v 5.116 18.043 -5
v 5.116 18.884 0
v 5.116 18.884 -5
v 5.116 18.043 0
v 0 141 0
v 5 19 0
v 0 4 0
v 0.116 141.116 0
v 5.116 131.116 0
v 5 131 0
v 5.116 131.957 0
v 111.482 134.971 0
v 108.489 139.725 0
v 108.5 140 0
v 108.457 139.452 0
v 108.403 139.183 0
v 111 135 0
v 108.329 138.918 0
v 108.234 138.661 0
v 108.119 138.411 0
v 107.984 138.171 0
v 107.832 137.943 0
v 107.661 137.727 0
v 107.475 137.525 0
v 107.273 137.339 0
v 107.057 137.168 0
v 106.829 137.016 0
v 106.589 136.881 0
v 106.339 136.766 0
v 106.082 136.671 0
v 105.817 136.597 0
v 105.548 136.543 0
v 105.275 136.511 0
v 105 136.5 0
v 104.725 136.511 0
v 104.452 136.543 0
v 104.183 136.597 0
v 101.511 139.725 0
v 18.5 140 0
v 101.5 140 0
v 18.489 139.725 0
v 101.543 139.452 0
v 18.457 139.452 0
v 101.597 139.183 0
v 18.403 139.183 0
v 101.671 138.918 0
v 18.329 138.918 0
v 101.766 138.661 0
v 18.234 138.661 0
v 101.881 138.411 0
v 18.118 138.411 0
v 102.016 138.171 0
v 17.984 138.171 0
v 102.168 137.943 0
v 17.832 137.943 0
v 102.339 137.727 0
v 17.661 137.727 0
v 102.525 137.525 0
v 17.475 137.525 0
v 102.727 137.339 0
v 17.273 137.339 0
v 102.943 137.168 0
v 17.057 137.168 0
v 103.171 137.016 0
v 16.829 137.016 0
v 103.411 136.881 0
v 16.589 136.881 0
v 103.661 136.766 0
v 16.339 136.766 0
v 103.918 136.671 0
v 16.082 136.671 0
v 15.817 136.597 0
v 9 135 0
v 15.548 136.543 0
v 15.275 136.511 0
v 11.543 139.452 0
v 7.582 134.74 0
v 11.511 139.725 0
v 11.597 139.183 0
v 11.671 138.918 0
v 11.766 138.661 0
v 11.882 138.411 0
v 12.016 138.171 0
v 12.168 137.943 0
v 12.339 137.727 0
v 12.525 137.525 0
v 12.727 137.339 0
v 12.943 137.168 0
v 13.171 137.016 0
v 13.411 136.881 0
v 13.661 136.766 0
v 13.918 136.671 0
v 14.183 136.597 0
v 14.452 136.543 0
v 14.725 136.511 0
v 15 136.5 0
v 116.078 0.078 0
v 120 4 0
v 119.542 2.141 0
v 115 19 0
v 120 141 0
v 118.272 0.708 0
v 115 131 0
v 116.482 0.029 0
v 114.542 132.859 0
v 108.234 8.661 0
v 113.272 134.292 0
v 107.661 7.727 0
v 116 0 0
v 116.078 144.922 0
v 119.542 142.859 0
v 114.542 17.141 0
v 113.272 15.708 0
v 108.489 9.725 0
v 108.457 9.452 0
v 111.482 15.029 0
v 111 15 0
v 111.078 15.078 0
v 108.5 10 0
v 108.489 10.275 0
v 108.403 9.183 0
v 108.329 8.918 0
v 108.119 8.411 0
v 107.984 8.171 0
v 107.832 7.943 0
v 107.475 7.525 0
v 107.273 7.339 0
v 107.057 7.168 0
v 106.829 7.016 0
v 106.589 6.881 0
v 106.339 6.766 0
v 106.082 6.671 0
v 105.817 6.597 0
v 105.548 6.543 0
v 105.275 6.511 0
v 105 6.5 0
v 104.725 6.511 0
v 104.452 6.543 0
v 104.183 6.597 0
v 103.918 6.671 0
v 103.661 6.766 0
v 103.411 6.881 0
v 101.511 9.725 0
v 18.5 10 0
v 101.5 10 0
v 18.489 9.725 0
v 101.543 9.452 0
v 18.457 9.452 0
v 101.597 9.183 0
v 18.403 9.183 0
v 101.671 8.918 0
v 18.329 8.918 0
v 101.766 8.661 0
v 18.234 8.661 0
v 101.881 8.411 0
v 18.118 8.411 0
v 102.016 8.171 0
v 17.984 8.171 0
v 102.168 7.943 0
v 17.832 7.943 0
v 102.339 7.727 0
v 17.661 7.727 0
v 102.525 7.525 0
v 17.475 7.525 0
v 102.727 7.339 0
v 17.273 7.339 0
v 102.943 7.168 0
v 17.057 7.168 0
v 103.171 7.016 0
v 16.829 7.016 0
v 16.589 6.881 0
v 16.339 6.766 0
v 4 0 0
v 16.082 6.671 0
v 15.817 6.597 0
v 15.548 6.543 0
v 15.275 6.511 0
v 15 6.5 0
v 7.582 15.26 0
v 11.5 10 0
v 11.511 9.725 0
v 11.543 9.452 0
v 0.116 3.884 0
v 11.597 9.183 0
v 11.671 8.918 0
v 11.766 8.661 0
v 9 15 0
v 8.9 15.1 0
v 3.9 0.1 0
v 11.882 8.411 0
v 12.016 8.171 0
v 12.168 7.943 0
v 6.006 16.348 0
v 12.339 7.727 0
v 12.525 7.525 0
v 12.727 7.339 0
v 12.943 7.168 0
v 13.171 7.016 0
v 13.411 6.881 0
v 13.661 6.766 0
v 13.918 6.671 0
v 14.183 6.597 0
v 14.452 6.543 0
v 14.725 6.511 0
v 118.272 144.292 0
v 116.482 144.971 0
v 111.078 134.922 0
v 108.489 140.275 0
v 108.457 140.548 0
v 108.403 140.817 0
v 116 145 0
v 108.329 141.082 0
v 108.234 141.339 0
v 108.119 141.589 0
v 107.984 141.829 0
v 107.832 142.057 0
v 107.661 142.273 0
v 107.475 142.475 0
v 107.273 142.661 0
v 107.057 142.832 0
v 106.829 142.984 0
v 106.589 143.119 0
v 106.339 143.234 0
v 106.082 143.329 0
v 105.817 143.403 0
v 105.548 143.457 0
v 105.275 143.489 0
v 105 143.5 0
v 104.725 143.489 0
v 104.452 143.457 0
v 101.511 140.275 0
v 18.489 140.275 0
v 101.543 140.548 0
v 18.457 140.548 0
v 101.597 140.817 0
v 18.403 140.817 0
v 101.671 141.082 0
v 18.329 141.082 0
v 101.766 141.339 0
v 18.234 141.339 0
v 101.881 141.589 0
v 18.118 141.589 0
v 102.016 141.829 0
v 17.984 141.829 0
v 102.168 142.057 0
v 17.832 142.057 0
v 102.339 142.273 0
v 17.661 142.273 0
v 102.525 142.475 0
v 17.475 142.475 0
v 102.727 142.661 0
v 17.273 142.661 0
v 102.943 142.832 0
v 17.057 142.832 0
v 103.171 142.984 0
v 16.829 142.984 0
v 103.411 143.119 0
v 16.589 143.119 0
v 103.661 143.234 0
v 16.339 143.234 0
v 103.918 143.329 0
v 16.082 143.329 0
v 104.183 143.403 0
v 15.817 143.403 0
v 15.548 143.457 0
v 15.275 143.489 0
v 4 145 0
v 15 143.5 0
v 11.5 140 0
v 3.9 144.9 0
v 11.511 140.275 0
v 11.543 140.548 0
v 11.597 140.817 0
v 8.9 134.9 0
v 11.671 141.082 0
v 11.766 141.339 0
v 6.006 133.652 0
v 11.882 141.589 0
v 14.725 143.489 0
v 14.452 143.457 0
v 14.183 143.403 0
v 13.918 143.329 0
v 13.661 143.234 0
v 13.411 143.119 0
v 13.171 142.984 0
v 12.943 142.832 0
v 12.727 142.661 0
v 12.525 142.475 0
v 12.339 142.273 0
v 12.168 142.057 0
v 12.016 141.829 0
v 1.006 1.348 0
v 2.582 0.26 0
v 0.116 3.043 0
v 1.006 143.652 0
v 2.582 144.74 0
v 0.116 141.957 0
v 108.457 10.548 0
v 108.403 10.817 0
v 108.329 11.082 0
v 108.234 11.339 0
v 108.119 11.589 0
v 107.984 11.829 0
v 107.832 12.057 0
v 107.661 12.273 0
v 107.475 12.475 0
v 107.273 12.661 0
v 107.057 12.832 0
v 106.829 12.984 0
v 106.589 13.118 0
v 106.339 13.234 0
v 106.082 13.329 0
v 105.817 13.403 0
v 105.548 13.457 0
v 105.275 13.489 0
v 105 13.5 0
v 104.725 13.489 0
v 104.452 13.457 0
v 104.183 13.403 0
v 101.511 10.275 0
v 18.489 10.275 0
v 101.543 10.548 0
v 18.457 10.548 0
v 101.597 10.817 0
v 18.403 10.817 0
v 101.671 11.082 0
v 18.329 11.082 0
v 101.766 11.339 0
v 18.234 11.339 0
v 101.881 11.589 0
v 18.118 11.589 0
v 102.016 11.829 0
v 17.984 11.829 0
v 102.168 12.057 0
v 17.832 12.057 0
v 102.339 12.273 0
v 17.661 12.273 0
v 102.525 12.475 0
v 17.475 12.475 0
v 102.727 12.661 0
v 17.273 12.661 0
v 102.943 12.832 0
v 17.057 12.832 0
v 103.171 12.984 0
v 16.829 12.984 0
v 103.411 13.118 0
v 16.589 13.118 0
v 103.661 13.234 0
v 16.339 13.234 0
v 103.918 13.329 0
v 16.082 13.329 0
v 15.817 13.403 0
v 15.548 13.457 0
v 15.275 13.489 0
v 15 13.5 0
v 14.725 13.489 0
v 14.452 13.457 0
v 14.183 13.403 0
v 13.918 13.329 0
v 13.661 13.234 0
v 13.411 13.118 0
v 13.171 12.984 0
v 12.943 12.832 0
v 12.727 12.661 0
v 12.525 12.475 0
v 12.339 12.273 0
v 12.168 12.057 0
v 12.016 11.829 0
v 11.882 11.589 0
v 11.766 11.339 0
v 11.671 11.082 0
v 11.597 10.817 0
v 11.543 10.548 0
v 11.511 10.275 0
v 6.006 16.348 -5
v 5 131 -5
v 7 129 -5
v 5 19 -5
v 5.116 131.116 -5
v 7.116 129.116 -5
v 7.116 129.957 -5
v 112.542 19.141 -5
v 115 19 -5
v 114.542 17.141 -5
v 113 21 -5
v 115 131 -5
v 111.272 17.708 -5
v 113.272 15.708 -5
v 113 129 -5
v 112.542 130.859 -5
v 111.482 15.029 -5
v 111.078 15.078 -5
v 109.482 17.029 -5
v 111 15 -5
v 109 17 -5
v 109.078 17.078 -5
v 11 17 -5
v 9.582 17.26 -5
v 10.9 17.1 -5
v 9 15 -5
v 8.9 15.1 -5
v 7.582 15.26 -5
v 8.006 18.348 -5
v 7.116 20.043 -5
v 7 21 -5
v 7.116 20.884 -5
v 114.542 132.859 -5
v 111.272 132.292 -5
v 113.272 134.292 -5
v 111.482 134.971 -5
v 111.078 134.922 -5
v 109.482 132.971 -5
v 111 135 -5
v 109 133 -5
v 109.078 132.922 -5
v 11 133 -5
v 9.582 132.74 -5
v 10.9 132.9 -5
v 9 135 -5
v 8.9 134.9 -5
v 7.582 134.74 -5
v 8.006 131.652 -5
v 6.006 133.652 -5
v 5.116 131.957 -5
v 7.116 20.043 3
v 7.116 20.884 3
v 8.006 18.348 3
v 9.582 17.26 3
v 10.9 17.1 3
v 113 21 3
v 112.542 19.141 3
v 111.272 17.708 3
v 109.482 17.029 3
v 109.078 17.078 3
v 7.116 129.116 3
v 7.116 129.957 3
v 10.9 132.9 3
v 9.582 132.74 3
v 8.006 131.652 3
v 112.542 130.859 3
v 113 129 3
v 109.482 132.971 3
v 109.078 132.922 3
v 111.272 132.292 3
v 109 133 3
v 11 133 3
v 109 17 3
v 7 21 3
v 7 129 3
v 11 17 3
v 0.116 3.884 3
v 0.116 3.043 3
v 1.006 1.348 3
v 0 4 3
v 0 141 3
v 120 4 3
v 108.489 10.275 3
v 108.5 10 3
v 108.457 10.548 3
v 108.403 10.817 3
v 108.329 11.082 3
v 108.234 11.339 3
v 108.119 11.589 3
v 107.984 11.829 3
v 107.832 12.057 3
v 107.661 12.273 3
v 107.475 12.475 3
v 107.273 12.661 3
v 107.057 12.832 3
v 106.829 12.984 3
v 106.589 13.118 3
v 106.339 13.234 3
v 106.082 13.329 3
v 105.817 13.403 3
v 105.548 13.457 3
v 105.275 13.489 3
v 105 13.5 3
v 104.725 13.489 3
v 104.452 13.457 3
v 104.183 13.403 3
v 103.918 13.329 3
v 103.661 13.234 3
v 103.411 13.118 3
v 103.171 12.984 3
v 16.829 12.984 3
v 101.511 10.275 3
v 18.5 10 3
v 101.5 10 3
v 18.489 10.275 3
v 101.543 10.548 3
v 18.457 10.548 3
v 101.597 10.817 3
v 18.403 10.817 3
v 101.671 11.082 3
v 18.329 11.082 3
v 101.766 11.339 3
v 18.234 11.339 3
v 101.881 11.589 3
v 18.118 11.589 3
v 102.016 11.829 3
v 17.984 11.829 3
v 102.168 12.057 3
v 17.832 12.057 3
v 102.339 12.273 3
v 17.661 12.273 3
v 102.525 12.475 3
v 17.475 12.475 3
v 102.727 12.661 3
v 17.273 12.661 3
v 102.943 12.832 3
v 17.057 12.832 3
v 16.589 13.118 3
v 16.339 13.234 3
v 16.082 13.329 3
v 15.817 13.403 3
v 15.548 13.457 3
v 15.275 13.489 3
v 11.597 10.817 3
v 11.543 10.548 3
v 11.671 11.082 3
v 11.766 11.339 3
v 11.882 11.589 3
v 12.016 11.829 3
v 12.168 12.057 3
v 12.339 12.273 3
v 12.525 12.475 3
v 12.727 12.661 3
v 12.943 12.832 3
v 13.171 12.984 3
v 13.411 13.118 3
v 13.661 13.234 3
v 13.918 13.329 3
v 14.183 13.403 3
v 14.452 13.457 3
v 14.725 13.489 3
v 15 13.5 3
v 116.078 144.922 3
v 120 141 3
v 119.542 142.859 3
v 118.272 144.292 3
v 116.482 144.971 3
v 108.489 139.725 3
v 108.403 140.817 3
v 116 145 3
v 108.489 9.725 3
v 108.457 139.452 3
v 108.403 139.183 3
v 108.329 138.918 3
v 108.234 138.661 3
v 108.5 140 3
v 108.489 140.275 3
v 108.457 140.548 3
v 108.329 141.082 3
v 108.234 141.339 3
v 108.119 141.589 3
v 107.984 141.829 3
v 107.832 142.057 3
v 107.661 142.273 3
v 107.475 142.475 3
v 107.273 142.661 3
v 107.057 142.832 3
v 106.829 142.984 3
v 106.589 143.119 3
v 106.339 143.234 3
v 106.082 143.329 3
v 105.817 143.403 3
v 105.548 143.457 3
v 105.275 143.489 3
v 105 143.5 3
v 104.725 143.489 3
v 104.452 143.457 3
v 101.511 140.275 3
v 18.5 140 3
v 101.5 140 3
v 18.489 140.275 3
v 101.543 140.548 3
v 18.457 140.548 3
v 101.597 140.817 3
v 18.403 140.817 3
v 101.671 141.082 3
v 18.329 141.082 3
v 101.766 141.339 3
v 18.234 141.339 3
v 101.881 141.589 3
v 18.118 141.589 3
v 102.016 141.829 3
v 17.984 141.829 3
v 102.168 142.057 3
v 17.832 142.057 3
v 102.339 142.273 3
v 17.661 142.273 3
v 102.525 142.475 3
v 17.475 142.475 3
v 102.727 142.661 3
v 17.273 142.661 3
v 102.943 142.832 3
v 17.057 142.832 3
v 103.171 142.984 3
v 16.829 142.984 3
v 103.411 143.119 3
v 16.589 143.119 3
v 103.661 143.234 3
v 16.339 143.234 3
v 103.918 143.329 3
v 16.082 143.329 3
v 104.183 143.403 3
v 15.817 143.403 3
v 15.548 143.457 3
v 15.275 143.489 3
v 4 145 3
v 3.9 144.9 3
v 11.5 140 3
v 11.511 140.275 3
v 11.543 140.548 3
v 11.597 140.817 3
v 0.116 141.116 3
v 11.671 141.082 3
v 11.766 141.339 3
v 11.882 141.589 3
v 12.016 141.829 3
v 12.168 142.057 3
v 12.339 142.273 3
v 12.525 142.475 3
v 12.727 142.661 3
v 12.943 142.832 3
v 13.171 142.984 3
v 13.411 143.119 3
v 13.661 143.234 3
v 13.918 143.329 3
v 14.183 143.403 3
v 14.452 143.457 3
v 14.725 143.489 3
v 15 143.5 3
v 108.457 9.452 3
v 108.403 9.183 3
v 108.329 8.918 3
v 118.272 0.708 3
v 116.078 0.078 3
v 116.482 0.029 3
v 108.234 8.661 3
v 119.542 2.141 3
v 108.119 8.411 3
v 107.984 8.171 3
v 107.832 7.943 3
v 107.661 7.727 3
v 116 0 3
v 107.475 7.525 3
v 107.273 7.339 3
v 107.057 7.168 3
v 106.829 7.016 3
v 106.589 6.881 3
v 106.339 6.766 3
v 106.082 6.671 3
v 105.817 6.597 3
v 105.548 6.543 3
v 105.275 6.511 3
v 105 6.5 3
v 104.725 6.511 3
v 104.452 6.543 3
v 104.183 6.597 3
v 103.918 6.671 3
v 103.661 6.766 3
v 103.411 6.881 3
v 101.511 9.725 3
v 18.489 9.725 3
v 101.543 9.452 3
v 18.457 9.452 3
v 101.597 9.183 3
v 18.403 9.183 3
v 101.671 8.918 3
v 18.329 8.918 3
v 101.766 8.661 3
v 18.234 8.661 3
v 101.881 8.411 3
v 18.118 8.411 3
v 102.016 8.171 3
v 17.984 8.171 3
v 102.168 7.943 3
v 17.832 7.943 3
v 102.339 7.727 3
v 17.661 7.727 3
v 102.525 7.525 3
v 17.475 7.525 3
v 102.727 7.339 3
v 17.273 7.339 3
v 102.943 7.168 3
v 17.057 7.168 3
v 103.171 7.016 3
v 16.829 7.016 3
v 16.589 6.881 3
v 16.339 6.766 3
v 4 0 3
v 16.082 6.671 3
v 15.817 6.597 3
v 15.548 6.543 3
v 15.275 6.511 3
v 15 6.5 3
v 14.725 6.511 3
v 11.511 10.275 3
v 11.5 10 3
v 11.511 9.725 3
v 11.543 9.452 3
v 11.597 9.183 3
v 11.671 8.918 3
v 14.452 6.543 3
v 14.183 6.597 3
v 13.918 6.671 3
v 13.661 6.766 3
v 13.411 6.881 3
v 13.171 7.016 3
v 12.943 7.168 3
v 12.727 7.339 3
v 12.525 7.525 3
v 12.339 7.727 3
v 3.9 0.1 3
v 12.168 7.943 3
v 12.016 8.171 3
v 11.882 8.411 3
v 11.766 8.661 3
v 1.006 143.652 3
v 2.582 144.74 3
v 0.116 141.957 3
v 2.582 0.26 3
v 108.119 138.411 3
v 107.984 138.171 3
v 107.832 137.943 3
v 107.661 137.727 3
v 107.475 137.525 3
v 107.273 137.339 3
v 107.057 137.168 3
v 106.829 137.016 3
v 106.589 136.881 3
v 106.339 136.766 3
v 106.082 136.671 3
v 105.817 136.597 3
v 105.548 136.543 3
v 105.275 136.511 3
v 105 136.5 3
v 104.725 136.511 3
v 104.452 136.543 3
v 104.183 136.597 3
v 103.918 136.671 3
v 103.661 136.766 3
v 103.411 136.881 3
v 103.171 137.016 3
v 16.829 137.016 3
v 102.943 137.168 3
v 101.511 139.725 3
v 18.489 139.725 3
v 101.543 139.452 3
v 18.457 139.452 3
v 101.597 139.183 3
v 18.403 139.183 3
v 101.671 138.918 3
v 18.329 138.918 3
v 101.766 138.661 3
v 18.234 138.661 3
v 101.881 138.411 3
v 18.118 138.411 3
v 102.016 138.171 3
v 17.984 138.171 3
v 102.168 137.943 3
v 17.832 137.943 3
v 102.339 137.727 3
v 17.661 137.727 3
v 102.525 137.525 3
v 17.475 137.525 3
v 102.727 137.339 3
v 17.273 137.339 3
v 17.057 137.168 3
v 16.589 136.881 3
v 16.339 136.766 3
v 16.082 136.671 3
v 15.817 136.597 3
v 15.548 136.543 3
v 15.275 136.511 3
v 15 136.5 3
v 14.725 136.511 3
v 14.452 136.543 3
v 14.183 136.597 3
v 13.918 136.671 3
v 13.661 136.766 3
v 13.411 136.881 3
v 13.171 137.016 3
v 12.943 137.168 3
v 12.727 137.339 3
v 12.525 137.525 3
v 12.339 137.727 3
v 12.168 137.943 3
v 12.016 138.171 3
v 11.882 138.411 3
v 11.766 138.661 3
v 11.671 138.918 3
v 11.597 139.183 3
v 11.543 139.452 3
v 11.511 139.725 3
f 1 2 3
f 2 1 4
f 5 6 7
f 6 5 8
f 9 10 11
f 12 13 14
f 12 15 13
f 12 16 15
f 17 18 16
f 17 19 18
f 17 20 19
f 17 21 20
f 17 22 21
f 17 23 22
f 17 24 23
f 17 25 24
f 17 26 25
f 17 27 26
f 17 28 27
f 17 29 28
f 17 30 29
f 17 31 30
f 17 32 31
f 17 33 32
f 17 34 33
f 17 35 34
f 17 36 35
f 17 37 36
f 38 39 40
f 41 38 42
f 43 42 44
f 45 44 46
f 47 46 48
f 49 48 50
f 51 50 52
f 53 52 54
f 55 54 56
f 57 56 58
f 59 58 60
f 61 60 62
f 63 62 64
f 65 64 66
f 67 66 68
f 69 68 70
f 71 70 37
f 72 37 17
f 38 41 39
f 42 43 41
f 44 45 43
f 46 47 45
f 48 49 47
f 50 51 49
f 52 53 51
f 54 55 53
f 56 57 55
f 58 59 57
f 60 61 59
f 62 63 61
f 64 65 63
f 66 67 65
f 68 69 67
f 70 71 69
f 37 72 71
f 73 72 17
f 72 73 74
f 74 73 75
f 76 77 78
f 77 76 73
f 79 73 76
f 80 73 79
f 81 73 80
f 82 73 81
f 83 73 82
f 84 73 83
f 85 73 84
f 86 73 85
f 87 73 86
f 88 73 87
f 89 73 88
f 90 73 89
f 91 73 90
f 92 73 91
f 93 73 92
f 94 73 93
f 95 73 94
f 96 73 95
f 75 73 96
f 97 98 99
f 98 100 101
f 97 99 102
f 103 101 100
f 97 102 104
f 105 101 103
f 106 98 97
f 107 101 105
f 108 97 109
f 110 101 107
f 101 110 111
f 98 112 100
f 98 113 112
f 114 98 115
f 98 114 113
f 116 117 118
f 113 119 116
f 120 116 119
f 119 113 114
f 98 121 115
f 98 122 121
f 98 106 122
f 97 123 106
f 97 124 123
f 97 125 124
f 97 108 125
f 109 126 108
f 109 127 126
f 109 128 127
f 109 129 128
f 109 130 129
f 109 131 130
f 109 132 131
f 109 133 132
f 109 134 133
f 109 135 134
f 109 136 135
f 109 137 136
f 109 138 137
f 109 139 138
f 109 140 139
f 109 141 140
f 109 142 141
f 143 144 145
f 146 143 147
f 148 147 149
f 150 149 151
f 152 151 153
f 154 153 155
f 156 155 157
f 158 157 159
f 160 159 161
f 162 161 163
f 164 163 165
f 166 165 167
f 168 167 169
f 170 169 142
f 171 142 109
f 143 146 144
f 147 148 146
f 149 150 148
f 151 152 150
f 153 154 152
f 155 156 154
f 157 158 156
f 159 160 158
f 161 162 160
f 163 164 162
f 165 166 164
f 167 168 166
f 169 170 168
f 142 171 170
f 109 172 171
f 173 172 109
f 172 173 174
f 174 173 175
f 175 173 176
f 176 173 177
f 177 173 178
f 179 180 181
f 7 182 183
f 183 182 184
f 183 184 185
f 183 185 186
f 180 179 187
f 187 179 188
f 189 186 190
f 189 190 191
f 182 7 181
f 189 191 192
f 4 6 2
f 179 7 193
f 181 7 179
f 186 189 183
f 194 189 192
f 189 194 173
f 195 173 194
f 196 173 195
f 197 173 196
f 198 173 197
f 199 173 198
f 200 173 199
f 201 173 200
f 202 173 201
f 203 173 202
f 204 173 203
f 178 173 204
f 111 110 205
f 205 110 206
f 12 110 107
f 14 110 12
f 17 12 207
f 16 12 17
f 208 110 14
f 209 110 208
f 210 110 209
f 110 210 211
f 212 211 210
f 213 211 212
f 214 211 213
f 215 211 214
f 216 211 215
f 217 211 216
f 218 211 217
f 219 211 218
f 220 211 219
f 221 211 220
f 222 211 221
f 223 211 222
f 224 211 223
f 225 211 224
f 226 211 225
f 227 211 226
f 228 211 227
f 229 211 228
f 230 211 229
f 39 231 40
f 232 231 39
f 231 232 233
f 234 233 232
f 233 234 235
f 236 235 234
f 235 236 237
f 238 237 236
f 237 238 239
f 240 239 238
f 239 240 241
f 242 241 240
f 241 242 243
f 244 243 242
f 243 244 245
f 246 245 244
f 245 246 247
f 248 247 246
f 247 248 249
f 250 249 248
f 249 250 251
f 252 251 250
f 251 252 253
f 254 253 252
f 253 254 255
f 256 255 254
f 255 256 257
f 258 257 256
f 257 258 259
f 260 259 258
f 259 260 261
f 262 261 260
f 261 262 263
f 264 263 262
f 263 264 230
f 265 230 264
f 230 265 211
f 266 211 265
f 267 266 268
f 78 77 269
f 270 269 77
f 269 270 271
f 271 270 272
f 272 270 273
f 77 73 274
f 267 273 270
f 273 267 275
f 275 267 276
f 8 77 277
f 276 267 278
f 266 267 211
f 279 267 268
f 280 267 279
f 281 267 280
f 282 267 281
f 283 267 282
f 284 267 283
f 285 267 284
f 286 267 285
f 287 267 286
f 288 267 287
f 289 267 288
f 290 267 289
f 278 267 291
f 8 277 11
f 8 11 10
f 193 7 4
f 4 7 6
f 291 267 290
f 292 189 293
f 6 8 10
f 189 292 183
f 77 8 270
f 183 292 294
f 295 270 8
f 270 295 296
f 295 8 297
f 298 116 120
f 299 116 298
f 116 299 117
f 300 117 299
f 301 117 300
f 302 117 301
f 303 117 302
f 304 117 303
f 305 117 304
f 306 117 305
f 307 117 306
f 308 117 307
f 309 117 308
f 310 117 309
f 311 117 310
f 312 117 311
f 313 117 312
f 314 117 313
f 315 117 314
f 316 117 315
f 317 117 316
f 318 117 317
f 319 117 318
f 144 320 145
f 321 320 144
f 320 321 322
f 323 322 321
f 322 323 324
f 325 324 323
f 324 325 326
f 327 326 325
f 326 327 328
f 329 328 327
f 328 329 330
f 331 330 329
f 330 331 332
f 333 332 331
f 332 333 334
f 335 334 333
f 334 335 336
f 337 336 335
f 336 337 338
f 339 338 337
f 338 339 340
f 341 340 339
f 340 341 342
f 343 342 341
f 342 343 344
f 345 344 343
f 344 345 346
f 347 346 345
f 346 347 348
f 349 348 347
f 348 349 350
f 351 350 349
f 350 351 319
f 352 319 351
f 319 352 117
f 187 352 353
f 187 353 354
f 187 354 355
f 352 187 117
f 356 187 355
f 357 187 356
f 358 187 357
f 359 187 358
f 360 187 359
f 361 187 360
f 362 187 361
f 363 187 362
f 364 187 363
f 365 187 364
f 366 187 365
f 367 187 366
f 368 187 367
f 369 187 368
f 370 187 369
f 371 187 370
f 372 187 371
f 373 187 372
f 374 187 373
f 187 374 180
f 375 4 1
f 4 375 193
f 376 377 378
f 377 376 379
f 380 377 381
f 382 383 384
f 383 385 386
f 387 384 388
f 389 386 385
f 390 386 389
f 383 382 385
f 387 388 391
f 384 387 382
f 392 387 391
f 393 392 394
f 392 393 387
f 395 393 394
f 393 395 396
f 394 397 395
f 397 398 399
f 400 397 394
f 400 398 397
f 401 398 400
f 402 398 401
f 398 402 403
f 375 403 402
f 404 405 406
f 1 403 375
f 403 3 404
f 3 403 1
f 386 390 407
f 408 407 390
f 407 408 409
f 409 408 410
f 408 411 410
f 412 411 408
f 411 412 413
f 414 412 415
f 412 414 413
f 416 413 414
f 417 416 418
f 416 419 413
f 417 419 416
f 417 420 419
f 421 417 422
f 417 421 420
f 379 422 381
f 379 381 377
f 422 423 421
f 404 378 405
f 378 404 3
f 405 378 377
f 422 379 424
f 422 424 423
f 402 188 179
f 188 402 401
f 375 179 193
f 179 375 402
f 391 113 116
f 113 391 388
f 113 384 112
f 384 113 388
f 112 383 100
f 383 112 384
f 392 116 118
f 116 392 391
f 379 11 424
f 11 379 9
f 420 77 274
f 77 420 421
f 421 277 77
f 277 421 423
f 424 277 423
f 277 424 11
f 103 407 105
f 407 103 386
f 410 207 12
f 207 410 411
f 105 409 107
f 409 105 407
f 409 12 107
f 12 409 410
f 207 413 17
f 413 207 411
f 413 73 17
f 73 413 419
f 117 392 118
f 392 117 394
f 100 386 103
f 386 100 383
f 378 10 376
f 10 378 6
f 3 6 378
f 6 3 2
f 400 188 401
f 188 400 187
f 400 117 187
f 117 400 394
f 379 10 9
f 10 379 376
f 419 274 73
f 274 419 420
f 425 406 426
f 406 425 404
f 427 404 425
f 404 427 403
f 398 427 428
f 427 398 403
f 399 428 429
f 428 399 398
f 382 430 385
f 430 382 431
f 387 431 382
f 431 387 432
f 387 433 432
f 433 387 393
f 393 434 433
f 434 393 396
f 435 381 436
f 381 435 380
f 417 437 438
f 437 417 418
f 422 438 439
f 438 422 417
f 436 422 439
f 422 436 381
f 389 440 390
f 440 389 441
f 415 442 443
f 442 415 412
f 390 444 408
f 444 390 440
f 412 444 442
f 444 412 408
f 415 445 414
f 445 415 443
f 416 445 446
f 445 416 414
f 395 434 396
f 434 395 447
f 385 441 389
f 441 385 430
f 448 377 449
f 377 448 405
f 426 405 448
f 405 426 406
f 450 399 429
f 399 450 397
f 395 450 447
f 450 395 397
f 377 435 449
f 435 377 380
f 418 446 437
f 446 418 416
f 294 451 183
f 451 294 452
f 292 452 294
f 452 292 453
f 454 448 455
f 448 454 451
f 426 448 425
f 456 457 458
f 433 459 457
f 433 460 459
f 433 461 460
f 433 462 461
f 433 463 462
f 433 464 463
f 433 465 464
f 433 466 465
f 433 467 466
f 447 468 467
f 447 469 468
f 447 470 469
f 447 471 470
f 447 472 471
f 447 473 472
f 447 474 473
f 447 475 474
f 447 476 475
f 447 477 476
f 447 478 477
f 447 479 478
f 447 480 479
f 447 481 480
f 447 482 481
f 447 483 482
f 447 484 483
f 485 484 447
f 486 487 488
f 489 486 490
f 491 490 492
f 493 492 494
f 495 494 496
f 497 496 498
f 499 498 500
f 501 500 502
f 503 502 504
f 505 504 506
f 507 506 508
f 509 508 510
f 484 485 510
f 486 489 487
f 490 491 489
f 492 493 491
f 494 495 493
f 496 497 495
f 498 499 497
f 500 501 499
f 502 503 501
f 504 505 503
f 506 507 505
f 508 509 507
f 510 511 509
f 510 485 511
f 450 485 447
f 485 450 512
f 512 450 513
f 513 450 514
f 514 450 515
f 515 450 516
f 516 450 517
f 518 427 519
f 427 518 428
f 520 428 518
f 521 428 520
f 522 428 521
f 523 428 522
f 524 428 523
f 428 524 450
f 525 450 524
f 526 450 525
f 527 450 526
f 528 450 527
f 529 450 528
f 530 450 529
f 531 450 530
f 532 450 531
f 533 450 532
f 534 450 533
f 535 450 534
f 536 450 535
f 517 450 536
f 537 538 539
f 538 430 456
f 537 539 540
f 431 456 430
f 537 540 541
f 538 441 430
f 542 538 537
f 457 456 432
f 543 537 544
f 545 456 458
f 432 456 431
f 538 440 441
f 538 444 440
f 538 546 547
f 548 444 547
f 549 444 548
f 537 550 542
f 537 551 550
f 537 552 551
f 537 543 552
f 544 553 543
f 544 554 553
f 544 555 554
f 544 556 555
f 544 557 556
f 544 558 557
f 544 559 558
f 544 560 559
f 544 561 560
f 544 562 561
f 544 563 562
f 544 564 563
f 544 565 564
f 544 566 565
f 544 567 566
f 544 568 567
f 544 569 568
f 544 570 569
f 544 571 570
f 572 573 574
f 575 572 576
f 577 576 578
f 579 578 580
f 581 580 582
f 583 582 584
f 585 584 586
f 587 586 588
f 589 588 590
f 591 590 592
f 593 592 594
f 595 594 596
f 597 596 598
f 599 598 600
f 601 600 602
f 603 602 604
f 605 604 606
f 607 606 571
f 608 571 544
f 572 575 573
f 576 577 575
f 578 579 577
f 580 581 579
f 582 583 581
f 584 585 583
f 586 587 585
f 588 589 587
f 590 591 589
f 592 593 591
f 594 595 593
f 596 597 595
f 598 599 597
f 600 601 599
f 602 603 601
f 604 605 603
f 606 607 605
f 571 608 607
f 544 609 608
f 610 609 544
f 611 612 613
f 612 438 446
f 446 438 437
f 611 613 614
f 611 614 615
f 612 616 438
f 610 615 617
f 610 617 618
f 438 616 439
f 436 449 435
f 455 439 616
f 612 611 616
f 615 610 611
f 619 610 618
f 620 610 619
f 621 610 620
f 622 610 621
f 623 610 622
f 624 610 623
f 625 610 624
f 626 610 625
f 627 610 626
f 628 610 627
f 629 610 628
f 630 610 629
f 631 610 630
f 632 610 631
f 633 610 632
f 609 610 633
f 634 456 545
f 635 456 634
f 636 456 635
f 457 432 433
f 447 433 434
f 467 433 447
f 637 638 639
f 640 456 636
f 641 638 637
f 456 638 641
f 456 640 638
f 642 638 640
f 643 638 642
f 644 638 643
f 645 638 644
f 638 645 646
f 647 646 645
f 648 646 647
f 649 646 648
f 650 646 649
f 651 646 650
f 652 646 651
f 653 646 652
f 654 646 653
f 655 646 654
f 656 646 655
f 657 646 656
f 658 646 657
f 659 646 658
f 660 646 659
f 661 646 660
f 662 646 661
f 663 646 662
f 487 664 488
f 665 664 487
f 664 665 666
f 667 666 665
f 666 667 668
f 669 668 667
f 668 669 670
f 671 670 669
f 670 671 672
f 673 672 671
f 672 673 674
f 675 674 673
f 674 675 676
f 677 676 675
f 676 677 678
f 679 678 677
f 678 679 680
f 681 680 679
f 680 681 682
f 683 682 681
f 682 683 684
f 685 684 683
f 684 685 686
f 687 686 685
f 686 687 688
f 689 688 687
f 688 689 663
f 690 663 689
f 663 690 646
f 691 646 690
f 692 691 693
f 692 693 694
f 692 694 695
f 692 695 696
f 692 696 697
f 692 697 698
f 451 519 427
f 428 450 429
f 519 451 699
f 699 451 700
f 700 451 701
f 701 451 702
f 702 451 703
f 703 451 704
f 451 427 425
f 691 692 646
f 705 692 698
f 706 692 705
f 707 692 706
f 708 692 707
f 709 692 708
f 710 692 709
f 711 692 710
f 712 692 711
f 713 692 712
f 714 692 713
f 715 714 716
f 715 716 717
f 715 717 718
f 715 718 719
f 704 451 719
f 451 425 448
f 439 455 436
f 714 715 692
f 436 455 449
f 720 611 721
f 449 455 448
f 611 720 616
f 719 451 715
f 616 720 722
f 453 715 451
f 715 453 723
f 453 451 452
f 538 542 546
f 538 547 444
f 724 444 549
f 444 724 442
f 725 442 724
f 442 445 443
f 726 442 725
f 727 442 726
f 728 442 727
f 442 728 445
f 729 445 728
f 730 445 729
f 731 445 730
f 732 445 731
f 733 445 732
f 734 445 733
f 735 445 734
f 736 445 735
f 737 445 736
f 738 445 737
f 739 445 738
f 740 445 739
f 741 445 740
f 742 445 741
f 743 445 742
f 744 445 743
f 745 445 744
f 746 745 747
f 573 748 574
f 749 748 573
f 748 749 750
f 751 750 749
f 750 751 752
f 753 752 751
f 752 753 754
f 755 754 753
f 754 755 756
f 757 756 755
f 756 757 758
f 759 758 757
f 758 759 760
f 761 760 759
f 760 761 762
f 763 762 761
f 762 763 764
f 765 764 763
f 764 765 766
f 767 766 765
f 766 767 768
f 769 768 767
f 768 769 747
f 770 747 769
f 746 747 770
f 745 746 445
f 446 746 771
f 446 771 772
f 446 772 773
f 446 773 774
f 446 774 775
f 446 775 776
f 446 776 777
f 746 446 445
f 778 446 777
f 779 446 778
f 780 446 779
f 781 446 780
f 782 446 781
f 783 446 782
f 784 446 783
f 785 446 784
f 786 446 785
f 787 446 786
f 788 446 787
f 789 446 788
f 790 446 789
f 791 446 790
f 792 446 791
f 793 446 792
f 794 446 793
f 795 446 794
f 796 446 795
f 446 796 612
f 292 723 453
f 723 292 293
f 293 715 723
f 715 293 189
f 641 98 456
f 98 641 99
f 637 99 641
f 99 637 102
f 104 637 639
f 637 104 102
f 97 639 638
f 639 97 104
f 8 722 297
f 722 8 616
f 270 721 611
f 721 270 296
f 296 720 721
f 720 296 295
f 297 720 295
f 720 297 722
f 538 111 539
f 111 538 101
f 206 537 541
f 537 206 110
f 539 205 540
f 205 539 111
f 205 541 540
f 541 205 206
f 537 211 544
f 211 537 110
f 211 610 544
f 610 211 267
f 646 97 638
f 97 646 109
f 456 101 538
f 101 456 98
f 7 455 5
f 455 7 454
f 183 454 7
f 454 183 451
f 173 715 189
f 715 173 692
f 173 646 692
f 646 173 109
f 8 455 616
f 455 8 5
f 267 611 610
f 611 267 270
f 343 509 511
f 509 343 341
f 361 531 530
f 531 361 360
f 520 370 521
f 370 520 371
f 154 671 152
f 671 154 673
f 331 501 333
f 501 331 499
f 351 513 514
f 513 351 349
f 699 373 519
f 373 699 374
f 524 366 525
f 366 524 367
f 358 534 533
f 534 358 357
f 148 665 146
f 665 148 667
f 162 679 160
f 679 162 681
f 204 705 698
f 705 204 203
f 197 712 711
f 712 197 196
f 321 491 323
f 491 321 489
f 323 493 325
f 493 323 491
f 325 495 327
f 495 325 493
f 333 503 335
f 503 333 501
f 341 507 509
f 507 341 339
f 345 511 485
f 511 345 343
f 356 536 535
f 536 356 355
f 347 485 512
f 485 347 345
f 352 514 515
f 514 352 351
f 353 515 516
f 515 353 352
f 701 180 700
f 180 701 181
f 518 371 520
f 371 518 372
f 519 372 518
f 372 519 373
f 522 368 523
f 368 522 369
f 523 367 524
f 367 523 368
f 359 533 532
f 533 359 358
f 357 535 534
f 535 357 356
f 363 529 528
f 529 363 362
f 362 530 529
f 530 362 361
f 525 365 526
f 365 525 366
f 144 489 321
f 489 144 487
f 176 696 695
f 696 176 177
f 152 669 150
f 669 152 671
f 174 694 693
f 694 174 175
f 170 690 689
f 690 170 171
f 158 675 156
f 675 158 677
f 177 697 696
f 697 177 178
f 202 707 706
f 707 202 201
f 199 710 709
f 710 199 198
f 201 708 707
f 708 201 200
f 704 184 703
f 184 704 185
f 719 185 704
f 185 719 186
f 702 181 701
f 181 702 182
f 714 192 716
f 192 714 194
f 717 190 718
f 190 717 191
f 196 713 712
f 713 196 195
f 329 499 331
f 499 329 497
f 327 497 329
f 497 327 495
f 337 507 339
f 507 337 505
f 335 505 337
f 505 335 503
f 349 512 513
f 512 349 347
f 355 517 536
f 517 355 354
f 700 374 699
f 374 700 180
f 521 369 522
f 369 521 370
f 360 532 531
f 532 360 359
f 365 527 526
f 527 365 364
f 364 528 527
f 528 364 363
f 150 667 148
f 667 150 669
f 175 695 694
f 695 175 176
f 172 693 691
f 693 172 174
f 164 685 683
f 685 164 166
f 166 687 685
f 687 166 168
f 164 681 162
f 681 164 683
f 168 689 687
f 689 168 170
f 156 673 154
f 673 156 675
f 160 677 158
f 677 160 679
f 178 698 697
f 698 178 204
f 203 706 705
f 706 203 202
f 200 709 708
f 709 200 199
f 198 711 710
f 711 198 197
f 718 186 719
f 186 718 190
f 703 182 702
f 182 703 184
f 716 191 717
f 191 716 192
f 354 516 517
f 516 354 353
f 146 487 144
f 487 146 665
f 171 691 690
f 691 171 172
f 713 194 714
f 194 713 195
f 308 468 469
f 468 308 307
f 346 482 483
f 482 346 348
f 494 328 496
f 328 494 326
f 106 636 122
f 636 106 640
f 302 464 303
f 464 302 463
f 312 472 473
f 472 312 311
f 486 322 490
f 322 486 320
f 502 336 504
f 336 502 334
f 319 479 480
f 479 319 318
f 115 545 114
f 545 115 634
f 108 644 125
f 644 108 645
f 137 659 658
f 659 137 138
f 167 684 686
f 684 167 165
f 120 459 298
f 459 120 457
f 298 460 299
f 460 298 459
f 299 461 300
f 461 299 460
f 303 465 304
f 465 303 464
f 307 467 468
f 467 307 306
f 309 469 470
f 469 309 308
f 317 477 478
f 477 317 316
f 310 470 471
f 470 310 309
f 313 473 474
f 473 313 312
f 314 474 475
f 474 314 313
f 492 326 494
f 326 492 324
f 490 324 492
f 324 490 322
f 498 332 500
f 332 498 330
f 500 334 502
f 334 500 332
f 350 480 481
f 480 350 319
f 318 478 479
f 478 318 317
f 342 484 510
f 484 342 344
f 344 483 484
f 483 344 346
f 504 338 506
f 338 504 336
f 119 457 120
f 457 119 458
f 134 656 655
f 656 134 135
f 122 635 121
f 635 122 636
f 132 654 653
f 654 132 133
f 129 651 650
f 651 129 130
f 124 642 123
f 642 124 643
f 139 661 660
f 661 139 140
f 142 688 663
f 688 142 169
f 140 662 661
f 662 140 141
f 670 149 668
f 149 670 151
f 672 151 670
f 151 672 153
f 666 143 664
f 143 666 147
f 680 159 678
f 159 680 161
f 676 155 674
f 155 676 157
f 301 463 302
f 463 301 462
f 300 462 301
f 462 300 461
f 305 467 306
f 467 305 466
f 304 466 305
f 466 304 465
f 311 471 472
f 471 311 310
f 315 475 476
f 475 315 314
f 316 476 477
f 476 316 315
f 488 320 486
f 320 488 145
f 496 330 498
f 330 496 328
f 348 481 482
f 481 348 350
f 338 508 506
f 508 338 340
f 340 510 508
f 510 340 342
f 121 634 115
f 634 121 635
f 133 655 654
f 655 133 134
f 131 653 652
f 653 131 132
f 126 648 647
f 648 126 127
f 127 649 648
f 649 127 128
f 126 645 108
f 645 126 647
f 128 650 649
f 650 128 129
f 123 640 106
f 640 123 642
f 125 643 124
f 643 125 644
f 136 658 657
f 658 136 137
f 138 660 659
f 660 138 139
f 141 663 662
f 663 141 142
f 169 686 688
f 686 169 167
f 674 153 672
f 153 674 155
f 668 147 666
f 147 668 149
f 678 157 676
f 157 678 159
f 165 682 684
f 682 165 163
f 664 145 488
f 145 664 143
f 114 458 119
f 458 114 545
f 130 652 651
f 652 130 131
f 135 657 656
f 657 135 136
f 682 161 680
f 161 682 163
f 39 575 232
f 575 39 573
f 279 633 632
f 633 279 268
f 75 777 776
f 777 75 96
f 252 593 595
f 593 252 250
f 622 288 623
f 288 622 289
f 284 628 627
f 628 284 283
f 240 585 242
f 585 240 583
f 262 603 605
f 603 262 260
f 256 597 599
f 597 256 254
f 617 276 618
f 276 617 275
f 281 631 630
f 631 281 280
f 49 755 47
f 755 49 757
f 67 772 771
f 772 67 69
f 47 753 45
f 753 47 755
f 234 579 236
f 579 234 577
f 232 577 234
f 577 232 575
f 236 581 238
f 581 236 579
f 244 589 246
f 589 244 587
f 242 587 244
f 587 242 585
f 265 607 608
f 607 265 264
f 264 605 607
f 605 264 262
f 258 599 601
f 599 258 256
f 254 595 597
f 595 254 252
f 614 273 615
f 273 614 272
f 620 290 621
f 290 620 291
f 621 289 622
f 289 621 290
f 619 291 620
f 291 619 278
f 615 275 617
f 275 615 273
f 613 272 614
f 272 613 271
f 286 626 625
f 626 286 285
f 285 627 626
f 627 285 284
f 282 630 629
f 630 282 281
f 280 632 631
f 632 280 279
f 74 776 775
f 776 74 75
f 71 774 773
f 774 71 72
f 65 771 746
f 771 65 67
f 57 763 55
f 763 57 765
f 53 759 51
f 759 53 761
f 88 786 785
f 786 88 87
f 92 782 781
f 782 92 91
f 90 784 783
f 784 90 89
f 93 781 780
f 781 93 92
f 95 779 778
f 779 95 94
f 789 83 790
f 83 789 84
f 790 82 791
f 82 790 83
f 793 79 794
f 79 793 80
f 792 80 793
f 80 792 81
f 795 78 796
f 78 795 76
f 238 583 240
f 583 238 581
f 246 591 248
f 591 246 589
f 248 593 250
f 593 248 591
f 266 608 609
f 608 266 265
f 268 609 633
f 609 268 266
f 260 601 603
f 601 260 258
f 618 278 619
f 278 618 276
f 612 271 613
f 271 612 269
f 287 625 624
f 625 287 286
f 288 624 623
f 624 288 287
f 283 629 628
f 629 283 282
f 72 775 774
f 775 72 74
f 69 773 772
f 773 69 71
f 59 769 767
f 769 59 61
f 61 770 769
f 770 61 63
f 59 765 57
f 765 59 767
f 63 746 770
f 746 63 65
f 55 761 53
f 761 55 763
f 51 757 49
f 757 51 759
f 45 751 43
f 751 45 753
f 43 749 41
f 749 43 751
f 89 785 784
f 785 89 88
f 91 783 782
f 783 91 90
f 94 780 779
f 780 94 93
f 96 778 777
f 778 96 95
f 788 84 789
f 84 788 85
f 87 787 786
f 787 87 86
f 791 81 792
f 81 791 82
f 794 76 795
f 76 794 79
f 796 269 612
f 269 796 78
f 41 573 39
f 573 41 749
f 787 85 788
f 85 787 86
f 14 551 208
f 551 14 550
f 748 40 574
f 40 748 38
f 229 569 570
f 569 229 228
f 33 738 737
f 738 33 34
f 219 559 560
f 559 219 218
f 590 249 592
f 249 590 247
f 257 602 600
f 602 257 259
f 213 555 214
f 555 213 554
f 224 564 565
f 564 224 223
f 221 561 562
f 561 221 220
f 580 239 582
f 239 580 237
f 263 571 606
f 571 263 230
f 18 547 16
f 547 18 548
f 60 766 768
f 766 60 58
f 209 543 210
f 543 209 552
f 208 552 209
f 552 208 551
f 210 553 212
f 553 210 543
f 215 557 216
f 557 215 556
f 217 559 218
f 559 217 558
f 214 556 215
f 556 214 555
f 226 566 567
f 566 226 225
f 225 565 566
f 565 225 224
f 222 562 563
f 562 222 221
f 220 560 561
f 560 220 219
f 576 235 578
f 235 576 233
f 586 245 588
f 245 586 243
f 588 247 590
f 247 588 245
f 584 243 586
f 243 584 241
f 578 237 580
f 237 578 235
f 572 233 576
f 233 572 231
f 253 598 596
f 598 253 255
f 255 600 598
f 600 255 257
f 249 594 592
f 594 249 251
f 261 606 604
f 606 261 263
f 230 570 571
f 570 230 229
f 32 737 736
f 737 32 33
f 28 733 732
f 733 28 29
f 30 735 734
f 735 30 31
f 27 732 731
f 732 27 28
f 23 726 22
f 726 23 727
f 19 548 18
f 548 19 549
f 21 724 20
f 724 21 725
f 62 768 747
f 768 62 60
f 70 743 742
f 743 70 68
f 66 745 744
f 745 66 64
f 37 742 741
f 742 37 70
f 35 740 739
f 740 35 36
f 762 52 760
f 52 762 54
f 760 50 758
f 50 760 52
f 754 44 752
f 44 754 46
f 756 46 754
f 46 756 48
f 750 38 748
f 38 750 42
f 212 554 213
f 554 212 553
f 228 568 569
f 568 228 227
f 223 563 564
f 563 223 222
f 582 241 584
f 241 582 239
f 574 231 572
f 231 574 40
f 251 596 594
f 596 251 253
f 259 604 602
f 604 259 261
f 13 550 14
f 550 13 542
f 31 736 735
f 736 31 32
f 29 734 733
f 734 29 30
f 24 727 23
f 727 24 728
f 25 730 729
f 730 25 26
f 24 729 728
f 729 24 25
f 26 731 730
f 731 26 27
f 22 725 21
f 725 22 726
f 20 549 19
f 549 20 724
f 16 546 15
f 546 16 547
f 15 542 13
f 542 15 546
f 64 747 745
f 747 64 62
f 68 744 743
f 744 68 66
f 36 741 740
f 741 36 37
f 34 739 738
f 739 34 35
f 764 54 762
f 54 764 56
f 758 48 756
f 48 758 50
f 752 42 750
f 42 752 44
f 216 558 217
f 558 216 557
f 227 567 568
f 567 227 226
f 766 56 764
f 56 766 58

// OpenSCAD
module noCornersCube(width, height, depth, cornerRadius) {
    
    //cube([width, height, depth]);
    union() {
        linear_extrude(height=depth) {
            // Square with corners cut.
            polygon([
            [cornerRadius,0],
            [width-cornerRadius, 0],
            [width, cornerRadius],
            [width, height-cornerRadius],
            [width-cornerRadius, height],
            [cornerRadius, height],
            [0, height-cornerRadius],
            [0, cornerRadius],
            [cornerRadius,0]
            ]);
        }
        
    }
}

module roundedCube(width, height, depth, cornerRadius) {
    
    //cube([width, height, depth]);
    union() {
        translate([cornerRadius,cornerRadius,0]) {
            cylinder(r=cornerRadius, h=depth);   
        }
        translate([width-cornerRadius,cornerRadius,0]) {
            cylinder(r=cornerRadius, h=depth);
        }
        translate([cornerRadius,height-cornerRadius,0]) {
            cylinder(r=cornerRadius, h=depth);
        }
        translate([width-cornerRadius,height-cornerRadius,0]) {
            cylinder(r=cornerRadius, h=depth);
        }
        
        noCornersCube(width, height, depth, cornerRadius);
    }
}

module mountinghole(xOffset, yOffset) {
    // Mounting holes...
    // First hole, 10mm from left edge
    translate([5 + xOffset, 15 + yOffset, -0.01]) {
        cylinder(d=7, h=5, $fn=80);
        // 7mm hole to allow clearance for a M3 nut to drop in
        // so the bolt can be held in place.
        // this outlet place is then held in with an upper assembly.
    }
}

module mountingHoles() {
    // Holes 90mm appart on X (110mm x hole, 10mm in each side).
    // Holes -5 and +5 from Y edges. Y is 120 long
    translate([0,0,0]) {
        mountinghole(10, -5);
        #mountinghole(100, -5);
        mountinghole(10, 120+5);
        mountinghole(100, 120+5);
    }
}

// Inset piece.
// FIXED SIZE
translate([5,15,-5]) {
    difference() {
        union() {
            roundedCube(110, 120, 5, 4);
        }
        union() {
            translate([2,2,-0.01]) {
                #roundedCube(110-4, 120-4, 5.1, 4);
            }
        }
    }
}

// Face peice
// face is 5mm from edge in x (+/-5mm side to side
// 10mm in the y (+/-10mm back to front).
difference() {
    union() {
        roundedCube(120, 145,3, 4);
    }
    union() {
        translate([7,17,-0.01]) {
            #roundedCube(120-(4+10), 130-(4+10), 3.1, 4);
        }
        mountingHoles();
    }
}
